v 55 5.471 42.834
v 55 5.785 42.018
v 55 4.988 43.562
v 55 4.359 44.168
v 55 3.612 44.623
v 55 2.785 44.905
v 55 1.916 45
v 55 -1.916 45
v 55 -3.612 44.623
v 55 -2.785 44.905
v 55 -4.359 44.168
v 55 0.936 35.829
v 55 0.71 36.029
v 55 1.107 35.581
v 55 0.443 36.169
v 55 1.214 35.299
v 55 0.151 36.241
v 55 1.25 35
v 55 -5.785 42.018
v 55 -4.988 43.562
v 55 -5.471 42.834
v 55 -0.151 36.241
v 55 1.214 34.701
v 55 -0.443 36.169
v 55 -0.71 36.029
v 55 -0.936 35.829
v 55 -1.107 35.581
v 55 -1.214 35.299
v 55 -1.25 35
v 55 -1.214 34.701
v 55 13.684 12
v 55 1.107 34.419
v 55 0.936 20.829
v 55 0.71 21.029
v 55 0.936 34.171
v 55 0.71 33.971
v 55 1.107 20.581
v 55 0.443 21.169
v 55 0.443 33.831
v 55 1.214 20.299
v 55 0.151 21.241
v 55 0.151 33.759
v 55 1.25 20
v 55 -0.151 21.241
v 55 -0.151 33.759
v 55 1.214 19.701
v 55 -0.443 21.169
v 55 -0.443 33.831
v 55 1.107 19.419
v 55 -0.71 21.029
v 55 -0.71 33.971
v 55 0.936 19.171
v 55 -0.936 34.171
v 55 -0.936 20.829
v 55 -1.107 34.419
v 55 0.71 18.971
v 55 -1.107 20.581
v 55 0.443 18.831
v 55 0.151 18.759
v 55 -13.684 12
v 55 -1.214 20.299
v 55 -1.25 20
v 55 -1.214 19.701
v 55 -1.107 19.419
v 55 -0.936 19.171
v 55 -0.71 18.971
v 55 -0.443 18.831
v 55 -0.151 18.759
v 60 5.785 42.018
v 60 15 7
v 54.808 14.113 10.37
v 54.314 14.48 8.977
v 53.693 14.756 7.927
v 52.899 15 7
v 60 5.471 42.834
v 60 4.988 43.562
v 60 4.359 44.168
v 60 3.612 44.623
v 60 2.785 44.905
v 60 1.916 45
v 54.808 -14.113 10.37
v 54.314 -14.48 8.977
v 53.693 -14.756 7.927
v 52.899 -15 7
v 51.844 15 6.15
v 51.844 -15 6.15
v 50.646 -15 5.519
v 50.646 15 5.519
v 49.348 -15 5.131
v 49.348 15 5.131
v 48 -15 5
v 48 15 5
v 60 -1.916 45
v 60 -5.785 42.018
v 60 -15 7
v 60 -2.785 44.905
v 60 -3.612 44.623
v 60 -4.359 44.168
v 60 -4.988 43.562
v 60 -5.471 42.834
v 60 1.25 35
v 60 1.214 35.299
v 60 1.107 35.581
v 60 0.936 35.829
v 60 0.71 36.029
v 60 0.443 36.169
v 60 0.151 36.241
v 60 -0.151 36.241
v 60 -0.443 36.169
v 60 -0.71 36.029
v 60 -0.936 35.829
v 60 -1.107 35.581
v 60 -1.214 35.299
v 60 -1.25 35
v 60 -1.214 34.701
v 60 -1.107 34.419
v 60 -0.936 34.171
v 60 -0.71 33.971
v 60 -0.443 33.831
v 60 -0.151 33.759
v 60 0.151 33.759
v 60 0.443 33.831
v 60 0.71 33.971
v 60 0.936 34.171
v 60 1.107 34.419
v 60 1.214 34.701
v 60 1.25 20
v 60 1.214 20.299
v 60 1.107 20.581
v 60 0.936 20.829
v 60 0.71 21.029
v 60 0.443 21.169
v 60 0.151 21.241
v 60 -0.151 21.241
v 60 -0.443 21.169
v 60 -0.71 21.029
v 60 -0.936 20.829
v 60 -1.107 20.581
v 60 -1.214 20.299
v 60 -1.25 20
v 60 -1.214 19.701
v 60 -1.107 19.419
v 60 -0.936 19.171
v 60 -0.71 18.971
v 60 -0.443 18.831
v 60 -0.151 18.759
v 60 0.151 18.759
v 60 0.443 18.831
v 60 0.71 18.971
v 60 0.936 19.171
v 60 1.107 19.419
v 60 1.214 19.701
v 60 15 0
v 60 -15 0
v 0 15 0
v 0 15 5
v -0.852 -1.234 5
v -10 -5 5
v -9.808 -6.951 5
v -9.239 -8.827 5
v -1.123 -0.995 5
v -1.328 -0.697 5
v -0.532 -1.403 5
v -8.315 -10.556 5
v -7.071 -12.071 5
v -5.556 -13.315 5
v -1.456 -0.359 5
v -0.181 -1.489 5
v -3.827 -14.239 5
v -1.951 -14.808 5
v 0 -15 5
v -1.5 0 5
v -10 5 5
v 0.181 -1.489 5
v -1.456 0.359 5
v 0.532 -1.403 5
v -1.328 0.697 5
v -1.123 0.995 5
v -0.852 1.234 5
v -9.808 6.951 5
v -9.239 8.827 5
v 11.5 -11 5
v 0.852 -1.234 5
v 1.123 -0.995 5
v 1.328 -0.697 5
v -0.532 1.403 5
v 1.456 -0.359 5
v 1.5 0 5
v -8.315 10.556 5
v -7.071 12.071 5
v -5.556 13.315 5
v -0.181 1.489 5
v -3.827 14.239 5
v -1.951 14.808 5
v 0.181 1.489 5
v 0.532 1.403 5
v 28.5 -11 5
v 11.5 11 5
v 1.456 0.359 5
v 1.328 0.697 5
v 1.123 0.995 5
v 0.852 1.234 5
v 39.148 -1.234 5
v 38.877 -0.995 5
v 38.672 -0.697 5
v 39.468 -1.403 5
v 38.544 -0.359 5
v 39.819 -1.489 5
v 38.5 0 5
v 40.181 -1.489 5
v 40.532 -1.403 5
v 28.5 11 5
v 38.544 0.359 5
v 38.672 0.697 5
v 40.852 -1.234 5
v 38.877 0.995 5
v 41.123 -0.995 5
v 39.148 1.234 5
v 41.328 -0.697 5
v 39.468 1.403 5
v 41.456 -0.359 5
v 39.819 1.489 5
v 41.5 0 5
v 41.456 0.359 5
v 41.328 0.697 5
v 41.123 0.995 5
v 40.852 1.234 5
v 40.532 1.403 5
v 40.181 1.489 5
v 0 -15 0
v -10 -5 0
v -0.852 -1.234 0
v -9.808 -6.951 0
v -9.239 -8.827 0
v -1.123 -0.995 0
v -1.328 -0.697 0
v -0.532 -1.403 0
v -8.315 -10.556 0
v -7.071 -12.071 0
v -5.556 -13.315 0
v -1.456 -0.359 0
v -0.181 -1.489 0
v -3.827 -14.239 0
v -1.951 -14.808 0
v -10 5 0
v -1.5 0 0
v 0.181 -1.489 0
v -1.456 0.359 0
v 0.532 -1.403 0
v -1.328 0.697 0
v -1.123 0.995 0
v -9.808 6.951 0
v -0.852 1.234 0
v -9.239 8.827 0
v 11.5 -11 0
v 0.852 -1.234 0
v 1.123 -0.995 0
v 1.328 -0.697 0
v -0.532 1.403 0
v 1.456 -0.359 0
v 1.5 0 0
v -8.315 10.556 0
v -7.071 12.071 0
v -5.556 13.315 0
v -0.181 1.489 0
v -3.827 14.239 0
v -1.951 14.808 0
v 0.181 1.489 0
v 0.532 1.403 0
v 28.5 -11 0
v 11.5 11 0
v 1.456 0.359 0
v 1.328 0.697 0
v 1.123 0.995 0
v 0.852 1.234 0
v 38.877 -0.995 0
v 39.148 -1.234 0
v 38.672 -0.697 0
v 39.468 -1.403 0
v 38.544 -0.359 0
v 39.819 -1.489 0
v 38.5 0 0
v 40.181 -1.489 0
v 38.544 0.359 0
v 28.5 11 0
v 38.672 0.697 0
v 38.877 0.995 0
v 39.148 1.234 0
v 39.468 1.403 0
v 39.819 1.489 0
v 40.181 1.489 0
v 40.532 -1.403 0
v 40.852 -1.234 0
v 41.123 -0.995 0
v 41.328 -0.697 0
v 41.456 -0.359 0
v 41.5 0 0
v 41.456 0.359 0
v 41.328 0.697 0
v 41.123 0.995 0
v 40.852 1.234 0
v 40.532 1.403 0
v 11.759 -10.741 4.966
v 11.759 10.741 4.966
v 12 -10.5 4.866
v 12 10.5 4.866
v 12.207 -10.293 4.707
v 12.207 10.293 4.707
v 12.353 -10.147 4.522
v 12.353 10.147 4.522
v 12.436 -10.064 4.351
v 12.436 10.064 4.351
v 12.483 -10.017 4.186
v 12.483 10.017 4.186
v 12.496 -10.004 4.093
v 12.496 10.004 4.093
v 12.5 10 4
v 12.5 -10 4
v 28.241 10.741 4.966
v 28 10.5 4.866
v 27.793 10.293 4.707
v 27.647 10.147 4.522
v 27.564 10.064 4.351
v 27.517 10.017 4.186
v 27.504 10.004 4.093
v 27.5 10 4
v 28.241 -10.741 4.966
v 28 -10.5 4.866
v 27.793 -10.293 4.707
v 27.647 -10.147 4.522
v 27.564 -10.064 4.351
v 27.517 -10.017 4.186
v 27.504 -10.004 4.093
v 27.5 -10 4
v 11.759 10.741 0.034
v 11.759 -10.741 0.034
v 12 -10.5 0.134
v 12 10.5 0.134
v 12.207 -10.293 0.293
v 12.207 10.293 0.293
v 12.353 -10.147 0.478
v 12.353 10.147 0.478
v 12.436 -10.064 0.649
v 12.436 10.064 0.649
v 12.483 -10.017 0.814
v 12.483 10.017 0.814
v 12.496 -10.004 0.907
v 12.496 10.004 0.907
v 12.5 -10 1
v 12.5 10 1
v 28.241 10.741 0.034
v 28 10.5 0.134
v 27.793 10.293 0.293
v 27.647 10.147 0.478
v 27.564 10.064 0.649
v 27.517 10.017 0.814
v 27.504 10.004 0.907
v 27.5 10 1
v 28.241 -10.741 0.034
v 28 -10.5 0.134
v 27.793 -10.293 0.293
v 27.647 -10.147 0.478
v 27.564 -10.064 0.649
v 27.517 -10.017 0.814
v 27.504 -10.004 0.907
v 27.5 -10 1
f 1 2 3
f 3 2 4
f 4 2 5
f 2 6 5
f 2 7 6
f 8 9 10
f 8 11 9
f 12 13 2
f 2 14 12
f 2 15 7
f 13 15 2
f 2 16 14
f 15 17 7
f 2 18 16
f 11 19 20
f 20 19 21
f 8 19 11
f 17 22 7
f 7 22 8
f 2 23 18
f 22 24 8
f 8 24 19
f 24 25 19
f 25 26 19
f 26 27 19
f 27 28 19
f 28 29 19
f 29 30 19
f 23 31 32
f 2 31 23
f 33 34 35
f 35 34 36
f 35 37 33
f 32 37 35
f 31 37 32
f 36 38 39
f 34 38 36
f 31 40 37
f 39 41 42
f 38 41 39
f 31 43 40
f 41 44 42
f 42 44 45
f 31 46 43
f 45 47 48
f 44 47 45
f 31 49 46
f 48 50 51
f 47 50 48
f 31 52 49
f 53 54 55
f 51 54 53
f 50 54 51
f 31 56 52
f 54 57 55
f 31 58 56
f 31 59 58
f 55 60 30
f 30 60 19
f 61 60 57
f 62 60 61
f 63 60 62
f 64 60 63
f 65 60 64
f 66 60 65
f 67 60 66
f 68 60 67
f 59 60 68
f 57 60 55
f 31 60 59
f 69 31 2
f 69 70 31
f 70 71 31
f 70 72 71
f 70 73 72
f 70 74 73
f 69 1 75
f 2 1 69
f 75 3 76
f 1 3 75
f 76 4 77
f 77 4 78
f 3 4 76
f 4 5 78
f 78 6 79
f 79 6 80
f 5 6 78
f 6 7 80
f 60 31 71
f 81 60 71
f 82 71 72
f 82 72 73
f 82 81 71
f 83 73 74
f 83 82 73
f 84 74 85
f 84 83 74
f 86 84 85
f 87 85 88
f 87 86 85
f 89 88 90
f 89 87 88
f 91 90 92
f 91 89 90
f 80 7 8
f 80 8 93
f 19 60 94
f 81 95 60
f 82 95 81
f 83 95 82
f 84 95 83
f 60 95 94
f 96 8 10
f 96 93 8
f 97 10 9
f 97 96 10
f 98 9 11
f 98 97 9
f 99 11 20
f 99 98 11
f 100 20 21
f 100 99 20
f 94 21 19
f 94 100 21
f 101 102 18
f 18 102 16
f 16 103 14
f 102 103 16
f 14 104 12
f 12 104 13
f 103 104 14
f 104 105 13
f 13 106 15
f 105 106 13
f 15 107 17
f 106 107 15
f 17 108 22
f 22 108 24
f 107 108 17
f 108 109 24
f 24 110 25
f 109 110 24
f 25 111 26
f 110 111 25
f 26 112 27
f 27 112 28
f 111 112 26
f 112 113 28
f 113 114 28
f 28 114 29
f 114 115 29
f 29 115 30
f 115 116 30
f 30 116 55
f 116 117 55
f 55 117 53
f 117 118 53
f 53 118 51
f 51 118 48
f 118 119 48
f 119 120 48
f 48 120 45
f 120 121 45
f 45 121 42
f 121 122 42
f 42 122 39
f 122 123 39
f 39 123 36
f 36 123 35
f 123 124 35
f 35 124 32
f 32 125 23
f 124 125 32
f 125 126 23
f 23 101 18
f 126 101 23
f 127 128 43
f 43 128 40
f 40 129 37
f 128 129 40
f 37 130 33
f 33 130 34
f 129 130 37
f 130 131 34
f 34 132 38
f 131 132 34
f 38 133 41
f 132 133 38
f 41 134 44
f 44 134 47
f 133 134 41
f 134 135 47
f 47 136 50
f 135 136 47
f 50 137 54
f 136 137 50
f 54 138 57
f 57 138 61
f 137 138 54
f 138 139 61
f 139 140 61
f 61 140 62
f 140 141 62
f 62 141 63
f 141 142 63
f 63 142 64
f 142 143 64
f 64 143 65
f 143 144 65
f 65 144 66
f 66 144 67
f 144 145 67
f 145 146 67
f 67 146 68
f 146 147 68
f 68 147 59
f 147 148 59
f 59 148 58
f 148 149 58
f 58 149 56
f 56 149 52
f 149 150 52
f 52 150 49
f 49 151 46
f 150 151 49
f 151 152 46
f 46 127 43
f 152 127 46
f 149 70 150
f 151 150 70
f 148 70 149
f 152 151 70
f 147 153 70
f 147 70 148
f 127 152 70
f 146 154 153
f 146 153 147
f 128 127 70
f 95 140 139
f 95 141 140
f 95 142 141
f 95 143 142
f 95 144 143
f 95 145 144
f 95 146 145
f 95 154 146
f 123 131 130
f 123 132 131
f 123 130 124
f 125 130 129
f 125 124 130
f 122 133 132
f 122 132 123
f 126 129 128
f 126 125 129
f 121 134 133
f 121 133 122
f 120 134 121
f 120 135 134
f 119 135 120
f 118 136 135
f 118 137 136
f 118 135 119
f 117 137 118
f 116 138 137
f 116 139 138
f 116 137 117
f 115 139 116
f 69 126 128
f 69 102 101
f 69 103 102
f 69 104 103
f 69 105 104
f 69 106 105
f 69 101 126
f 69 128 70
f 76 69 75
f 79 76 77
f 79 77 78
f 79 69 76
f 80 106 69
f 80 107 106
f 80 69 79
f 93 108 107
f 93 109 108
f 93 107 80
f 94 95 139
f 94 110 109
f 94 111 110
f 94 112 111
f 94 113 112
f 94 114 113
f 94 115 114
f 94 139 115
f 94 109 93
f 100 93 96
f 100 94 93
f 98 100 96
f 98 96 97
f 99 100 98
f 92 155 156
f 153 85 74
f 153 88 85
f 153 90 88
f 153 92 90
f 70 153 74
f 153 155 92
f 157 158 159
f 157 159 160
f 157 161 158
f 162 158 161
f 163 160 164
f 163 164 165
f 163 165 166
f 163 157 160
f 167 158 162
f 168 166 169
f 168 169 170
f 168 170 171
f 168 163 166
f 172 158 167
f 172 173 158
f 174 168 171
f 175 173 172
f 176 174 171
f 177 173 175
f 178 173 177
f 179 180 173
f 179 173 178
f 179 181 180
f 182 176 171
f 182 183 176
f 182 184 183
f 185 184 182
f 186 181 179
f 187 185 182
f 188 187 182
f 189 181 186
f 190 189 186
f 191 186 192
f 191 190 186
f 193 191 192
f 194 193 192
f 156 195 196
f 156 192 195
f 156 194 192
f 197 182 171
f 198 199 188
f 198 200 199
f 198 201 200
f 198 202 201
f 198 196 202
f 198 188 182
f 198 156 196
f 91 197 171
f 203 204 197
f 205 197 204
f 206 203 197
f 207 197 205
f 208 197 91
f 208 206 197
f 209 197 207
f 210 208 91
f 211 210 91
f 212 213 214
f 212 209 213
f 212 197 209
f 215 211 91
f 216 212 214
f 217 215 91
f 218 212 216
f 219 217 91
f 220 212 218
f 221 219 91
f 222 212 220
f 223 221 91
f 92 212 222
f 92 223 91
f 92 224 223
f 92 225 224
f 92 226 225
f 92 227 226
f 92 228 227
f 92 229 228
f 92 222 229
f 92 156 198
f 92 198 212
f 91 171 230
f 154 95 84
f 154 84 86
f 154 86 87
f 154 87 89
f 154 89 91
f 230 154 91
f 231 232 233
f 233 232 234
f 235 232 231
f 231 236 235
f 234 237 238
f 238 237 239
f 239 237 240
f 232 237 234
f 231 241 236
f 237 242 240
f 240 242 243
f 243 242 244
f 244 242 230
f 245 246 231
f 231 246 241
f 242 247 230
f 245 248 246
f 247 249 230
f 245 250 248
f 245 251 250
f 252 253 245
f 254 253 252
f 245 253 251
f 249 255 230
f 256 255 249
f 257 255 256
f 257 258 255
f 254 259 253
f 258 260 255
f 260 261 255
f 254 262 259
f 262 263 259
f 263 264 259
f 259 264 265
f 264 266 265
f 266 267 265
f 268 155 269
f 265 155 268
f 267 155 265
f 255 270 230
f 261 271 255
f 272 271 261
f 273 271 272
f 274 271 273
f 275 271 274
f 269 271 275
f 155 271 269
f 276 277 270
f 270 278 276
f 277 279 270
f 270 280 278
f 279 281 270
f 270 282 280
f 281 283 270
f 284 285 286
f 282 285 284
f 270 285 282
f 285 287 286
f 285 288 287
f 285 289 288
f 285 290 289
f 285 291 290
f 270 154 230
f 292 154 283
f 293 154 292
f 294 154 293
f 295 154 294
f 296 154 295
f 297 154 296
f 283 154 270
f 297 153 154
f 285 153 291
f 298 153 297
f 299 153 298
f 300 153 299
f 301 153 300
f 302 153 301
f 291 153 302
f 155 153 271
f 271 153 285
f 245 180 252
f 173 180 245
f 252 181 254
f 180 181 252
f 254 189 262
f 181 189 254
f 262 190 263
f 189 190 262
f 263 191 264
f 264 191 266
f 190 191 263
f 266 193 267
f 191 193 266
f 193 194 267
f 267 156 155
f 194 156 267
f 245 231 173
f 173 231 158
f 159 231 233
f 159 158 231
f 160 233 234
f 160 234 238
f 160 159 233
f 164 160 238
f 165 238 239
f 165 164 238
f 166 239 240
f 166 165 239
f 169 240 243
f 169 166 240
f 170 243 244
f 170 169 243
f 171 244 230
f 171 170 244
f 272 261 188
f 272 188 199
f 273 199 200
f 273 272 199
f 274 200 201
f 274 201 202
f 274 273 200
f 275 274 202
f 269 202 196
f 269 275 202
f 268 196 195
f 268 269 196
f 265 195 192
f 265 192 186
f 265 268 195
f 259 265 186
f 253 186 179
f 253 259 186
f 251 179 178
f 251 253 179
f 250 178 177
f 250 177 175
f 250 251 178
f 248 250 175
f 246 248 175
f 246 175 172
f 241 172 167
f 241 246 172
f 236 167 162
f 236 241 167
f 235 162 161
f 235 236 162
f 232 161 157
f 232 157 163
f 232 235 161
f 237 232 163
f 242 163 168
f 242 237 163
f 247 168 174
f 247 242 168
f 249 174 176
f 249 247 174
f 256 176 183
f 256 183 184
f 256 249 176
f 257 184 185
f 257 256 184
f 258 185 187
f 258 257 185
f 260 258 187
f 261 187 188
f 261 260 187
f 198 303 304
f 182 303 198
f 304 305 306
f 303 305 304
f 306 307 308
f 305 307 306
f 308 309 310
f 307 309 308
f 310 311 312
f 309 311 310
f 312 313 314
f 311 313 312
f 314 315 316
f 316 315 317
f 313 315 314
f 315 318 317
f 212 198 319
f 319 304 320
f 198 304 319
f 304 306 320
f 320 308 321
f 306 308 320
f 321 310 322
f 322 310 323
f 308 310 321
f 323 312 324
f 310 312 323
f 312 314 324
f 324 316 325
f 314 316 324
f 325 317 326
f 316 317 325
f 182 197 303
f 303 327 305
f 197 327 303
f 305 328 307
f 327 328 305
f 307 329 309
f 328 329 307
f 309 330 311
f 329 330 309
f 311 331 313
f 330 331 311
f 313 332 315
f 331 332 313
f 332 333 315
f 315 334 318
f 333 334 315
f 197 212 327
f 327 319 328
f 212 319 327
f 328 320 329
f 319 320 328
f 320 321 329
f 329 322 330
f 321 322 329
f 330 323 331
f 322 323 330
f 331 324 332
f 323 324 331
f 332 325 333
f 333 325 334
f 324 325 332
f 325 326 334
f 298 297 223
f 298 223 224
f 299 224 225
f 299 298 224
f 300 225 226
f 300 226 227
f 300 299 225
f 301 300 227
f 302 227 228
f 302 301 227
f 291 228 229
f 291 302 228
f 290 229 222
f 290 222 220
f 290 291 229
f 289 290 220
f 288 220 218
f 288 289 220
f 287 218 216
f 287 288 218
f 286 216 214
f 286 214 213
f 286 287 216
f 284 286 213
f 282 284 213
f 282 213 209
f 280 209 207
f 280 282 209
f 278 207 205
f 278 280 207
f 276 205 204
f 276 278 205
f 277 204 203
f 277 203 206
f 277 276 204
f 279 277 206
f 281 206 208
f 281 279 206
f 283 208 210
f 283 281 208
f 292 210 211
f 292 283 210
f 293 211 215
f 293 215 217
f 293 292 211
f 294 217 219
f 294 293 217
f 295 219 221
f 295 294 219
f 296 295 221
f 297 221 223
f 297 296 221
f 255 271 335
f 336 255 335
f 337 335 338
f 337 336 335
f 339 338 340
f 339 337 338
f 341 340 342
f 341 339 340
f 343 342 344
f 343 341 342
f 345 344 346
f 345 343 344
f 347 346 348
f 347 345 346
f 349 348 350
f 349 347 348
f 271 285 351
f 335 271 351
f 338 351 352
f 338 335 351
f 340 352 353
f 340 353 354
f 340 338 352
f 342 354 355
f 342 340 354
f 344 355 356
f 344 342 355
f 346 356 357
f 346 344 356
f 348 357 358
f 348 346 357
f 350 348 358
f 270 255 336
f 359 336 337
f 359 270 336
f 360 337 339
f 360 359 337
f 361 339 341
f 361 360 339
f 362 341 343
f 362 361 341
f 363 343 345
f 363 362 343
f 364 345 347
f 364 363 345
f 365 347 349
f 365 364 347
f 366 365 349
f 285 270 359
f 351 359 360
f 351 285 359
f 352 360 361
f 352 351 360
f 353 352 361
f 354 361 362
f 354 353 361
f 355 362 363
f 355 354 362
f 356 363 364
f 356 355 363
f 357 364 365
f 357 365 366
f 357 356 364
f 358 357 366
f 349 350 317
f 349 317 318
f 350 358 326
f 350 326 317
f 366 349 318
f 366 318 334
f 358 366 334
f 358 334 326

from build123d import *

# Parameters (mm, degrees)
SKETCH_W      = 70
SKETCH_H      = 30
SKETCH_R      = 1.5
SKETCH_W_2    = 15
SKETCH_H_2    = 20
PAD_DEPTH     = 5
FILLET_R      = 10
FILLET001_R   = 1
SKETCH001_W   = 5
SKETCH001_H   = 30
PAD001_DEPTH  = 40
CHAMFER_SIZE2 = 38
CHAMFER_SIZE  = 10
FILLET002_R   = 7
SKETCH002_R   = 1.25
POCKET_DEPTH  = 70.001
FILLET003_R   = 4


with BuildPart() as part:
    # Sketch → Pad (new body)
    with BuildSketch(Plane.XY):
        with Locations((25, 0)):
            Rectangle(SKETCH_W, SKETCH_H)
        Circle(SKETCH_R, mode=Mode.SUBTRACT)
        with Locations((40, 0)):
            Circle(SKETCH_R, mode=Mode.SUBTRACT)
        with Locations((20, 0)):
            Rectangle(SKETCH_W_2, SKETCH_H_2, mode=Mode.SUBTRACT)
    extrude(amount=PAD_DEPTH)

    # Fillet
    fillet_edges = [part.edges().sort_by_distance(p)[0] for p in [
        (-10, 15, 2.5),
        (-10, -15, 2.5),
    ]]
    fillet(fillet_edges, radius=FILLET_R)

    # Fillet001
    fillet001_edges = [part.edges().sort_by_distance(p)[0] for p in [
        (12.5, 0, 5),
        (12.5, 0, 0),
        (20, 10, 0),
        (20, 10, 5),
        (27.5, 0, 5),
        (20, -10, 5),
        (27.5, 0, 0),
        (20, -10, 0),
    ]]
    fillet(fillet001_edges, radius=FILLET001_R)

    # Sketch001 (on Face18 of Fillet001) → Pad001 (join)
    with BuildSketch(Plane.XY.offset(5)):
        with Locations((57.5, 0)):
            Rectangle(SKETCH001_W, SKETCH001_H)
    extrude(amount=PAD001_DEPTH)

    # Chamfer
    chamfer_edges = [part.edges().sort_by_distance(p)[0] for p in [
        (57.5, -15, 45),
        (57.5, 15, 45),
    ]]
    chamfer_side = part.faces().sort_by_distance((57.5, 0, 45))[0]
    chamfer(chamfer_edges, length=CHAMFER_SIZE, length2=CHAMFER_SIZE2, reference=chamfer_side)

    # Fillet002
    fillet002_edges = [part.edges().sort_by_distance(p)[0] for p in [
        (55, 0, 5),
    ]]
    fillet(fillet002_edges, radius=FILLET002_R)

    # Sketch002 (on Face7 of Fillet002) → Pocket (cut, through all)
    with BuildSketch(Plane.YZ.offset(60)):
        with Locations((0, 35)):
            Circle(SKETCH002_R)
        with Locations((0, 20)):
            Circle(SKETCH002_R)
    extrude(amount=-POCKET_DEPTH, mode=Mode.SUBTRACT)

    # Fillet003
    fillet003_edges = [part.edges().sort_by_distance(p)[0] for p in [
        (57.5, 5, 45),
        (57.5, -5, 45),
    ]]
    fillet(fillet003_edges, radius=FILLET003_R)


solid = part.part
